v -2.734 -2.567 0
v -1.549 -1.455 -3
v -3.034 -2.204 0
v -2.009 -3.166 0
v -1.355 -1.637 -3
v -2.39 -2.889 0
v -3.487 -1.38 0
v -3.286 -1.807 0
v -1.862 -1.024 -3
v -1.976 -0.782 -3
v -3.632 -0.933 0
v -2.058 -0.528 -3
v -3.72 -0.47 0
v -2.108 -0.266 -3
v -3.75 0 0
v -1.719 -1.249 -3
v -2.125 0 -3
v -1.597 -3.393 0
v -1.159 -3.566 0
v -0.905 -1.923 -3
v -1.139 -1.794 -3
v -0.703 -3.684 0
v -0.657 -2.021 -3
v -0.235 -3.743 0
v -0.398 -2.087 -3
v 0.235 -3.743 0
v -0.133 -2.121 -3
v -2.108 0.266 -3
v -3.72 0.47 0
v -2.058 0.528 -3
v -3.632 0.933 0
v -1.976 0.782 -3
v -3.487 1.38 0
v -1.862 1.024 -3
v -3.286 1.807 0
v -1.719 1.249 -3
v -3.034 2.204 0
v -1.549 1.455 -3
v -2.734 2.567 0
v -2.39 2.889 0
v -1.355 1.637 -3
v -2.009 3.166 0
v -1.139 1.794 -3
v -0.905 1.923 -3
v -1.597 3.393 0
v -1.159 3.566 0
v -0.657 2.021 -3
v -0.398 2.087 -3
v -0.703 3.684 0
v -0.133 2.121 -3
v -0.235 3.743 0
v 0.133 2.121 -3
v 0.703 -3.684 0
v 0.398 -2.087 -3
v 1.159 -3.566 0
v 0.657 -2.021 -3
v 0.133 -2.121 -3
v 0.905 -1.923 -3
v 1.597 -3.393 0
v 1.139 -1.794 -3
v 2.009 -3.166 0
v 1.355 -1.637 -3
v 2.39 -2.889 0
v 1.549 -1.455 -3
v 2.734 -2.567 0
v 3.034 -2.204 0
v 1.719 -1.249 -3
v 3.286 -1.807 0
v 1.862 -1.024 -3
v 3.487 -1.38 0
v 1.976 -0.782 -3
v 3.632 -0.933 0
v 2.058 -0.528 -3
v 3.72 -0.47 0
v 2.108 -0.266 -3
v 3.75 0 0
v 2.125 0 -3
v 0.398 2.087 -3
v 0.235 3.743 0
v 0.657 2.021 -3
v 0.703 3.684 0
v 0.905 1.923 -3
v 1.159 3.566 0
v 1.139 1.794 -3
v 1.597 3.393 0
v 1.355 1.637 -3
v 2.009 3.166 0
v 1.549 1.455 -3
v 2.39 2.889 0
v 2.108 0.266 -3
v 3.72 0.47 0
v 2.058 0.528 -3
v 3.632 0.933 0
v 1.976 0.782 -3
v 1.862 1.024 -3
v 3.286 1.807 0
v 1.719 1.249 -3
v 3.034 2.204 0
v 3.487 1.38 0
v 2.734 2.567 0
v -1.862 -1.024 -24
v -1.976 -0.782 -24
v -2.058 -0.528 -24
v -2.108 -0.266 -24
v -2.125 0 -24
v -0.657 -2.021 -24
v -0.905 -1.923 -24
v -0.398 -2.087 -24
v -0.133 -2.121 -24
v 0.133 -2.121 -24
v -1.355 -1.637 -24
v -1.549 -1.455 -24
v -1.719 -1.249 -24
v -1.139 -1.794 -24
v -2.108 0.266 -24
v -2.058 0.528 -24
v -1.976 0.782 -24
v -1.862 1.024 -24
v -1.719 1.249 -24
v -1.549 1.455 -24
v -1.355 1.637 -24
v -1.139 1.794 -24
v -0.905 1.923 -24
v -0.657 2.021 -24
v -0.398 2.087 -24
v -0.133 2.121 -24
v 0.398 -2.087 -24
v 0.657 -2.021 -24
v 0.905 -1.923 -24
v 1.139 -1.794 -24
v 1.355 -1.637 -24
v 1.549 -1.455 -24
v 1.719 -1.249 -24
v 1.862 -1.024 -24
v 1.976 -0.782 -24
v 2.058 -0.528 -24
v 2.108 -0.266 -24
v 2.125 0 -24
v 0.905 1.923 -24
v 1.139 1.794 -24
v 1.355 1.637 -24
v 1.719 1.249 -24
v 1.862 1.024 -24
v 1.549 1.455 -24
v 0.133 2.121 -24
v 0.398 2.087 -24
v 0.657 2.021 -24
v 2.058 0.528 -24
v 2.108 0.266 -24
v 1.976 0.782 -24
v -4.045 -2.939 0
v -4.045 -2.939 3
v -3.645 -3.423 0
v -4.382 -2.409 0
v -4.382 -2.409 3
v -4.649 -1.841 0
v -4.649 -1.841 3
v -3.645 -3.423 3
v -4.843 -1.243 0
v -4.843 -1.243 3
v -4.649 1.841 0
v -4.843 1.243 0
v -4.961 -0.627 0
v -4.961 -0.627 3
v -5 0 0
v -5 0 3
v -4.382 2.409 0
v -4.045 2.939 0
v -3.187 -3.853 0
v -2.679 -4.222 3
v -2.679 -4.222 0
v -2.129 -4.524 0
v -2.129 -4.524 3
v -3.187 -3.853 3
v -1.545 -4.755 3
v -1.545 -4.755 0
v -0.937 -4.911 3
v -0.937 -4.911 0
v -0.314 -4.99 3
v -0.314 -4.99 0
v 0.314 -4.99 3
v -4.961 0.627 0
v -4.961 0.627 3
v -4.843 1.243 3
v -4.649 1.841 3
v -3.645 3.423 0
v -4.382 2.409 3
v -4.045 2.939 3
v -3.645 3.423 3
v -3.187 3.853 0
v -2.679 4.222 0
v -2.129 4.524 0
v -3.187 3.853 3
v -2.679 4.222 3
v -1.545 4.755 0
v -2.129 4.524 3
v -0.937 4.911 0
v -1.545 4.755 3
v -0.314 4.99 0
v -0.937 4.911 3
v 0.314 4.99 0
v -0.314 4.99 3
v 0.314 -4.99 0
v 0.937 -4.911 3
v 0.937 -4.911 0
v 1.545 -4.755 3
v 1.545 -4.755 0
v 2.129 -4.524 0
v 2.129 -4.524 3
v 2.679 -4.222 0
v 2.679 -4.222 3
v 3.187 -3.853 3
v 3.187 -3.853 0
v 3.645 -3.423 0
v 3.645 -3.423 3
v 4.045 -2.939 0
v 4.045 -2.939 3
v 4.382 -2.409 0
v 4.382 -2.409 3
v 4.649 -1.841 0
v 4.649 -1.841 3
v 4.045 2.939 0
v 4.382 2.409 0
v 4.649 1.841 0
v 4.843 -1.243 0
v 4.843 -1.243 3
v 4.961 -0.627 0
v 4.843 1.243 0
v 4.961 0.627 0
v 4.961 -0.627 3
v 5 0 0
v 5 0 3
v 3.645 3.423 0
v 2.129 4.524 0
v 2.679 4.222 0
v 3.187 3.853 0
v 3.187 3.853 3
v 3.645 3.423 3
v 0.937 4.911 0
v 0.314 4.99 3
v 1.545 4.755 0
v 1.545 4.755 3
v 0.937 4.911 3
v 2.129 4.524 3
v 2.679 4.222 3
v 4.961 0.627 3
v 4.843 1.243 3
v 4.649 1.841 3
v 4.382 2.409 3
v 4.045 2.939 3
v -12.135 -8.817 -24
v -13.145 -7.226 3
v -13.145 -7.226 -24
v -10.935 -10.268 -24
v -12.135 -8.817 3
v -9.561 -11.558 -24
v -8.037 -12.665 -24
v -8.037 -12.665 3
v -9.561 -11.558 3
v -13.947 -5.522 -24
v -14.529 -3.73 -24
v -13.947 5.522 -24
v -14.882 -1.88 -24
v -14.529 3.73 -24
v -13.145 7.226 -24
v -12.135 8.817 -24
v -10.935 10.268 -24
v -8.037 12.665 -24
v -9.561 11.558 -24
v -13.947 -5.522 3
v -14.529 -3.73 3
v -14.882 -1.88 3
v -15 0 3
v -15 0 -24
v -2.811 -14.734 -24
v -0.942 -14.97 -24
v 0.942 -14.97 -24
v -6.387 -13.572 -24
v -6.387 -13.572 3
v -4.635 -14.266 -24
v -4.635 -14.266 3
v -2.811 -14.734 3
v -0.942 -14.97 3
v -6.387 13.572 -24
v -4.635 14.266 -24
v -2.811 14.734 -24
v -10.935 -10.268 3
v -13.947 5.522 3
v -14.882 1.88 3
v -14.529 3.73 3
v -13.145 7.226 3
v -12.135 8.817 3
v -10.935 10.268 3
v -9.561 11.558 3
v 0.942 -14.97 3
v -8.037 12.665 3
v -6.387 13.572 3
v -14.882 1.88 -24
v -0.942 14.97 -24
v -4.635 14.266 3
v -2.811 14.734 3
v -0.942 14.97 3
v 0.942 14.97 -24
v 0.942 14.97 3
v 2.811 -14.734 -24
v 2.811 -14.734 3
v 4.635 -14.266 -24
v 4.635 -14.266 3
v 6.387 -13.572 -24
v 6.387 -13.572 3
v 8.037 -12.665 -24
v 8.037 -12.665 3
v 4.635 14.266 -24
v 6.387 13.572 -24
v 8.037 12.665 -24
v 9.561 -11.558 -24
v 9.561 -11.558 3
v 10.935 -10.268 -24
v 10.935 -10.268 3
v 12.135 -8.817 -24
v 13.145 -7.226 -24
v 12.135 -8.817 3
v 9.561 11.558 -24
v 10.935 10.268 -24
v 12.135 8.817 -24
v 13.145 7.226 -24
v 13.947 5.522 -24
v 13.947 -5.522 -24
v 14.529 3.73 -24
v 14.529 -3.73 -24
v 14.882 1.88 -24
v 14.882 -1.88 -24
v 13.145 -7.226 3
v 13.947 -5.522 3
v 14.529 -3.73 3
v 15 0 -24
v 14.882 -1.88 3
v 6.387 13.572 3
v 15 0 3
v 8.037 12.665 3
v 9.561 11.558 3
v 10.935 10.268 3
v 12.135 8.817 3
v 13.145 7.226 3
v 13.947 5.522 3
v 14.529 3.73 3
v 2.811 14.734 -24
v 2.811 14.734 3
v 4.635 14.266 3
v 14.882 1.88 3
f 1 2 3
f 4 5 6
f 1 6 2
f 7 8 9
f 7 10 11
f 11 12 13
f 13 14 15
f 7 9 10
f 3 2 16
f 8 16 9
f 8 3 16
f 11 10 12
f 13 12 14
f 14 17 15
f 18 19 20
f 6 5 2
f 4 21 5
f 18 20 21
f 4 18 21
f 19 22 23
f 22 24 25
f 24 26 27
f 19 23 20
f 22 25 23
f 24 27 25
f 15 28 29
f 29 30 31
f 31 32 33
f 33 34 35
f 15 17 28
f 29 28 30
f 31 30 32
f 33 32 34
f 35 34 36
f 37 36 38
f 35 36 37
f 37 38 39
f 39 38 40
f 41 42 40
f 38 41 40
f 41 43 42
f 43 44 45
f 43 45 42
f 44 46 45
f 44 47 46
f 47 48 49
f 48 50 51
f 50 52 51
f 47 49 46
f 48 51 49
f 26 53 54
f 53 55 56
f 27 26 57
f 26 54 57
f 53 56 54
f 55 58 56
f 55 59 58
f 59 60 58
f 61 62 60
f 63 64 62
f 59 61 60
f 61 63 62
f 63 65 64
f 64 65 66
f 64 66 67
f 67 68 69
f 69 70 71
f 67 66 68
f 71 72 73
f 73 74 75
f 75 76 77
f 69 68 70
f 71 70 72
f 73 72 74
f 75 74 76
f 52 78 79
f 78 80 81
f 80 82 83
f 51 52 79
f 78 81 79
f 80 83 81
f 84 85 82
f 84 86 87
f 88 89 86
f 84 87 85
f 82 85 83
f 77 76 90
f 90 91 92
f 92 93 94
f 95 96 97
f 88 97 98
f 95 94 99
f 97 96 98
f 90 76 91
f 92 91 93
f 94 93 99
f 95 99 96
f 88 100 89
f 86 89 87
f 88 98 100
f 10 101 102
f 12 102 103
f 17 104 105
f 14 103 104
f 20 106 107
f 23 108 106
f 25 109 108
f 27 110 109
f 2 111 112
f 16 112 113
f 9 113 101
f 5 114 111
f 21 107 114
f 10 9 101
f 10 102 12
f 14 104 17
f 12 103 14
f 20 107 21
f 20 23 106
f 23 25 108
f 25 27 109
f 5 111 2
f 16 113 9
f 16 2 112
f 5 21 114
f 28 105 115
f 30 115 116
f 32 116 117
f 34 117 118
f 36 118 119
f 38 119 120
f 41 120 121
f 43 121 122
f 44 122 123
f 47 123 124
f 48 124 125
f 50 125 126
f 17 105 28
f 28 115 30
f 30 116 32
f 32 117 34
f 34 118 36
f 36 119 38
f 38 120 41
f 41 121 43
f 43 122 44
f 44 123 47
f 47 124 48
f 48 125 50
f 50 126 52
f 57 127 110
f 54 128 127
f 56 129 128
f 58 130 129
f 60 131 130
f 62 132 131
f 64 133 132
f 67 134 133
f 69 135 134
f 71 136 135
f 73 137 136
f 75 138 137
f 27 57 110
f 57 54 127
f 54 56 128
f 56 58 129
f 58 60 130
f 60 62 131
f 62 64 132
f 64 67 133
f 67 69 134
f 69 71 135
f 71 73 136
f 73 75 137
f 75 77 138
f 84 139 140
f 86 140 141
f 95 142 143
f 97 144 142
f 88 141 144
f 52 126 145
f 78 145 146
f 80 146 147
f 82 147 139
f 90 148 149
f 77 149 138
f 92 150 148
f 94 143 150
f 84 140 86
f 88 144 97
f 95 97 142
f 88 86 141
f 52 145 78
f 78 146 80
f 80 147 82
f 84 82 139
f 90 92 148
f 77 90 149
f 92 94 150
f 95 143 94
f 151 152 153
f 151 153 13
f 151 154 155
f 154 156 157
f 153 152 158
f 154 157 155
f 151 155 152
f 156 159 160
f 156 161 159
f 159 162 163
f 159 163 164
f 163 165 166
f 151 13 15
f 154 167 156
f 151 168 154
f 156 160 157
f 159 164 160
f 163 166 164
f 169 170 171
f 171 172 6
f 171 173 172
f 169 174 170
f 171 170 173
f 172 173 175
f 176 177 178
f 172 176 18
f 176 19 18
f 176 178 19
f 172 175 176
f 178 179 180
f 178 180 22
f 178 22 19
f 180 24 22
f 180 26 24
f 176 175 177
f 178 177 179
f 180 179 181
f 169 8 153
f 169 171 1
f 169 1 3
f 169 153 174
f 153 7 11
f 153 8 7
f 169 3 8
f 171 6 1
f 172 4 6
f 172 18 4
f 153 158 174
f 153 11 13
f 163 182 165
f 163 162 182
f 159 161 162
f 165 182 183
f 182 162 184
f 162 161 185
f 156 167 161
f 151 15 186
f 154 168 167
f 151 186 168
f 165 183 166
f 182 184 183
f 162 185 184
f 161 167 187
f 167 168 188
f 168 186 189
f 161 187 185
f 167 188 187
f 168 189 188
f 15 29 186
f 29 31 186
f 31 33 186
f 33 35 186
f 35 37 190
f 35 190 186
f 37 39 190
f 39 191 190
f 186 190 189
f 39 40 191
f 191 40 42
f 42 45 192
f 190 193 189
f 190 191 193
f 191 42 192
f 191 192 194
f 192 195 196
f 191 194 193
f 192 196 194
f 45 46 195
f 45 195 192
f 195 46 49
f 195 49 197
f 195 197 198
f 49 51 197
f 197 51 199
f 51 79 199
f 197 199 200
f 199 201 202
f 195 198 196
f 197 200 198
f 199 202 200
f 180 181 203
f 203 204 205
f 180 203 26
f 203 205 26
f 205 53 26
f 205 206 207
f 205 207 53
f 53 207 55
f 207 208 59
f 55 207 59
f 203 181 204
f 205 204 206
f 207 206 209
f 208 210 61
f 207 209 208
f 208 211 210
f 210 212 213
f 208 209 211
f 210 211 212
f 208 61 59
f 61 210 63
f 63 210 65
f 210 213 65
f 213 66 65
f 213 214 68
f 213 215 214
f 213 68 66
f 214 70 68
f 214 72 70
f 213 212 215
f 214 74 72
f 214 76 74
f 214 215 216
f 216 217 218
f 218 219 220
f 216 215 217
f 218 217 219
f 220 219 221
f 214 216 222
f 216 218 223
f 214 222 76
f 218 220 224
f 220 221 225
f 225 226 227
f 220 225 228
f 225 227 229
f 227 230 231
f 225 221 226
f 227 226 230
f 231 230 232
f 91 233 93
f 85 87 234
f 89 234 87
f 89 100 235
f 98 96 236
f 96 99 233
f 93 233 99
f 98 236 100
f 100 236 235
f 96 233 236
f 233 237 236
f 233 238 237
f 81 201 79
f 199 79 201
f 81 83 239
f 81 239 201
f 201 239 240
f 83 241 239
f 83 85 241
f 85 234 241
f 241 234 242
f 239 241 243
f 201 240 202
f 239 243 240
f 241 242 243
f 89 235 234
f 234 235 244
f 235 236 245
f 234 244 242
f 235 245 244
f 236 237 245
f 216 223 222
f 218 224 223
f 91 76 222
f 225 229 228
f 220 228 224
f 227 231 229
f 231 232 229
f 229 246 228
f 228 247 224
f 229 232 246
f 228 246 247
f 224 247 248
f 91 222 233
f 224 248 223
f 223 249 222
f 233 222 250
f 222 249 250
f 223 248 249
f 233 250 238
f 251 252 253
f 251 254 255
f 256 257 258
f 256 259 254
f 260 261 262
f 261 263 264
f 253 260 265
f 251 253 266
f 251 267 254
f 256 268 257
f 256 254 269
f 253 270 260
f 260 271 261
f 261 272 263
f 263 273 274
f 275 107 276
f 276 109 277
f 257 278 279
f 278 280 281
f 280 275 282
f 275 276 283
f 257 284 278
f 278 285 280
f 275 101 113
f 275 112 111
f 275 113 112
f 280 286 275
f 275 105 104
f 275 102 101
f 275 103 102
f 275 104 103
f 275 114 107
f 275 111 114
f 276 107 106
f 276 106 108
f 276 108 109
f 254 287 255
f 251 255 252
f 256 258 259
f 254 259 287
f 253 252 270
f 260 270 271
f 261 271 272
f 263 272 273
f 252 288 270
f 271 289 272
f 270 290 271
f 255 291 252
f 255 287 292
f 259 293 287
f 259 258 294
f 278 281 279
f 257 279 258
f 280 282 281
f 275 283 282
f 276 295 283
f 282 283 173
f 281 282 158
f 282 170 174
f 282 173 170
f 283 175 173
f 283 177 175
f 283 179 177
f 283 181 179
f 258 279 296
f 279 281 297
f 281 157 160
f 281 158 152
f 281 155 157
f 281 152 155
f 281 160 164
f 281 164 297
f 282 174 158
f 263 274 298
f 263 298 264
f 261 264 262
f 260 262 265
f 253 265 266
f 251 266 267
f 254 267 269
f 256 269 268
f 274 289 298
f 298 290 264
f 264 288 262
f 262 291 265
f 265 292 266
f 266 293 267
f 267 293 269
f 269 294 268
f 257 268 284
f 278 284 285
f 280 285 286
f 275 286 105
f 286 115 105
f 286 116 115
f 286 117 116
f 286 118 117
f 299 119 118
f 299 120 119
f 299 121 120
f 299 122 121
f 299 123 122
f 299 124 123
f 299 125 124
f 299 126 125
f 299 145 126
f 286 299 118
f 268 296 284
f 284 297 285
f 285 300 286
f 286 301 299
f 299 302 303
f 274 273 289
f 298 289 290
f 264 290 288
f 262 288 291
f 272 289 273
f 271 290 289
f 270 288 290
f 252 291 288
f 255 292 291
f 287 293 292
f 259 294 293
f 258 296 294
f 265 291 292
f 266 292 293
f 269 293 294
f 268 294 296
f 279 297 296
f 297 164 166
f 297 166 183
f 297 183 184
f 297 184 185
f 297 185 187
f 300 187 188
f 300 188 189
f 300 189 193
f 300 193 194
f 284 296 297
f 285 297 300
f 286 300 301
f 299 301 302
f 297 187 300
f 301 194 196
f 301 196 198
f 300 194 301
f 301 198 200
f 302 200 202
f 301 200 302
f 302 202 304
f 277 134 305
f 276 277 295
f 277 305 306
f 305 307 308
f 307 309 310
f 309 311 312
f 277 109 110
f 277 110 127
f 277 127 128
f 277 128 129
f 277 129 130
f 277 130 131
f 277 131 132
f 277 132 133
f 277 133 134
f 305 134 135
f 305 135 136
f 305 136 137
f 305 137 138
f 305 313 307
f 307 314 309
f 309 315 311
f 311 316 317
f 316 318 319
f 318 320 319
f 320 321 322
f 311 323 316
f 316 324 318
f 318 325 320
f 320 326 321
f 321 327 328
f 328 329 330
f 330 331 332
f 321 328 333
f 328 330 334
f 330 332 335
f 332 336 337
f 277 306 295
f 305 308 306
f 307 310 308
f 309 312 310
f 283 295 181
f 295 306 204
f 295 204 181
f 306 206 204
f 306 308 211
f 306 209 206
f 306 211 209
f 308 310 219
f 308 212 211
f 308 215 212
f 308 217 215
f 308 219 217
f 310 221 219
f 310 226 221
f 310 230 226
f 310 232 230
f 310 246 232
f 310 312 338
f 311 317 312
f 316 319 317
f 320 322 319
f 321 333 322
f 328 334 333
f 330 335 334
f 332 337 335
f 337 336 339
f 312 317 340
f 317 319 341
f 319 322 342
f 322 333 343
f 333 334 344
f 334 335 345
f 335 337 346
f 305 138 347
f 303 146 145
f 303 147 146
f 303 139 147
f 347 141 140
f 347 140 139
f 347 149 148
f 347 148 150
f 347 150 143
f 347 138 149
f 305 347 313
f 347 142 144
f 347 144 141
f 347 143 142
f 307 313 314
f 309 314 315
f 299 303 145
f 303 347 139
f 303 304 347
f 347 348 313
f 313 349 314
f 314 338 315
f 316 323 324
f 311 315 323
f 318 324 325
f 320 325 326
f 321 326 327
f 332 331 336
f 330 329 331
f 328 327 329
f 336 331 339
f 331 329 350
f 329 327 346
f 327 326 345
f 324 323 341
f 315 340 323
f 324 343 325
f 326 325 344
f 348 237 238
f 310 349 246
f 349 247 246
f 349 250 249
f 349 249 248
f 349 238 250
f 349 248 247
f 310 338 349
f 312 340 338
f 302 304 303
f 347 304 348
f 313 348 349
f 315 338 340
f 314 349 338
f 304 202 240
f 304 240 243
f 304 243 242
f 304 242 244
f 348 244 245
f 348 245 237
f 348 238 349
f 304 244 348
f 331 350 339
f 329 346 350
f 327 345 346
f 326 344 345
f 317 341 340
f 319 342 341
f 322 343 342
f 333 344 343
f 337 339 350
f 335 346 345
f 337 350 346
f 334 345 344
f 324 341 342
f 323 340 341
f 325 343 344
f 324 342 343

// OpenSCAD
$fn = 50;

difference() {
	union() {
		translate(v = [0, 0, -24.0]) {
			cylinder(h = 27, r = 15.0);
		}
	}
	union() {
		translate(v = [0, 0, 0]) {
			rotate(a = [0, 0, 0]) {
				difference() {
					union() {
						translate(v = [0, 0, -27.0]) {
							cylinder(h = 27, r = 2.0);
						}
						translate(v = [0, 0, -3]) {
							cylinder(h = 3, r1 = 2.125, r2 = 3.75);
						}
						translate(v = [0, 0, -27.0]) {
							cylinder(h = 27, r = 2.125);
						}
						translate(v = [0, 0, -27.0]) {
							cylinder(h = 27, r = 2.0);
						}
					}
					union();
				}
			}
		}
		#cylinder(h = 3, r = 5.0);
	}
}
